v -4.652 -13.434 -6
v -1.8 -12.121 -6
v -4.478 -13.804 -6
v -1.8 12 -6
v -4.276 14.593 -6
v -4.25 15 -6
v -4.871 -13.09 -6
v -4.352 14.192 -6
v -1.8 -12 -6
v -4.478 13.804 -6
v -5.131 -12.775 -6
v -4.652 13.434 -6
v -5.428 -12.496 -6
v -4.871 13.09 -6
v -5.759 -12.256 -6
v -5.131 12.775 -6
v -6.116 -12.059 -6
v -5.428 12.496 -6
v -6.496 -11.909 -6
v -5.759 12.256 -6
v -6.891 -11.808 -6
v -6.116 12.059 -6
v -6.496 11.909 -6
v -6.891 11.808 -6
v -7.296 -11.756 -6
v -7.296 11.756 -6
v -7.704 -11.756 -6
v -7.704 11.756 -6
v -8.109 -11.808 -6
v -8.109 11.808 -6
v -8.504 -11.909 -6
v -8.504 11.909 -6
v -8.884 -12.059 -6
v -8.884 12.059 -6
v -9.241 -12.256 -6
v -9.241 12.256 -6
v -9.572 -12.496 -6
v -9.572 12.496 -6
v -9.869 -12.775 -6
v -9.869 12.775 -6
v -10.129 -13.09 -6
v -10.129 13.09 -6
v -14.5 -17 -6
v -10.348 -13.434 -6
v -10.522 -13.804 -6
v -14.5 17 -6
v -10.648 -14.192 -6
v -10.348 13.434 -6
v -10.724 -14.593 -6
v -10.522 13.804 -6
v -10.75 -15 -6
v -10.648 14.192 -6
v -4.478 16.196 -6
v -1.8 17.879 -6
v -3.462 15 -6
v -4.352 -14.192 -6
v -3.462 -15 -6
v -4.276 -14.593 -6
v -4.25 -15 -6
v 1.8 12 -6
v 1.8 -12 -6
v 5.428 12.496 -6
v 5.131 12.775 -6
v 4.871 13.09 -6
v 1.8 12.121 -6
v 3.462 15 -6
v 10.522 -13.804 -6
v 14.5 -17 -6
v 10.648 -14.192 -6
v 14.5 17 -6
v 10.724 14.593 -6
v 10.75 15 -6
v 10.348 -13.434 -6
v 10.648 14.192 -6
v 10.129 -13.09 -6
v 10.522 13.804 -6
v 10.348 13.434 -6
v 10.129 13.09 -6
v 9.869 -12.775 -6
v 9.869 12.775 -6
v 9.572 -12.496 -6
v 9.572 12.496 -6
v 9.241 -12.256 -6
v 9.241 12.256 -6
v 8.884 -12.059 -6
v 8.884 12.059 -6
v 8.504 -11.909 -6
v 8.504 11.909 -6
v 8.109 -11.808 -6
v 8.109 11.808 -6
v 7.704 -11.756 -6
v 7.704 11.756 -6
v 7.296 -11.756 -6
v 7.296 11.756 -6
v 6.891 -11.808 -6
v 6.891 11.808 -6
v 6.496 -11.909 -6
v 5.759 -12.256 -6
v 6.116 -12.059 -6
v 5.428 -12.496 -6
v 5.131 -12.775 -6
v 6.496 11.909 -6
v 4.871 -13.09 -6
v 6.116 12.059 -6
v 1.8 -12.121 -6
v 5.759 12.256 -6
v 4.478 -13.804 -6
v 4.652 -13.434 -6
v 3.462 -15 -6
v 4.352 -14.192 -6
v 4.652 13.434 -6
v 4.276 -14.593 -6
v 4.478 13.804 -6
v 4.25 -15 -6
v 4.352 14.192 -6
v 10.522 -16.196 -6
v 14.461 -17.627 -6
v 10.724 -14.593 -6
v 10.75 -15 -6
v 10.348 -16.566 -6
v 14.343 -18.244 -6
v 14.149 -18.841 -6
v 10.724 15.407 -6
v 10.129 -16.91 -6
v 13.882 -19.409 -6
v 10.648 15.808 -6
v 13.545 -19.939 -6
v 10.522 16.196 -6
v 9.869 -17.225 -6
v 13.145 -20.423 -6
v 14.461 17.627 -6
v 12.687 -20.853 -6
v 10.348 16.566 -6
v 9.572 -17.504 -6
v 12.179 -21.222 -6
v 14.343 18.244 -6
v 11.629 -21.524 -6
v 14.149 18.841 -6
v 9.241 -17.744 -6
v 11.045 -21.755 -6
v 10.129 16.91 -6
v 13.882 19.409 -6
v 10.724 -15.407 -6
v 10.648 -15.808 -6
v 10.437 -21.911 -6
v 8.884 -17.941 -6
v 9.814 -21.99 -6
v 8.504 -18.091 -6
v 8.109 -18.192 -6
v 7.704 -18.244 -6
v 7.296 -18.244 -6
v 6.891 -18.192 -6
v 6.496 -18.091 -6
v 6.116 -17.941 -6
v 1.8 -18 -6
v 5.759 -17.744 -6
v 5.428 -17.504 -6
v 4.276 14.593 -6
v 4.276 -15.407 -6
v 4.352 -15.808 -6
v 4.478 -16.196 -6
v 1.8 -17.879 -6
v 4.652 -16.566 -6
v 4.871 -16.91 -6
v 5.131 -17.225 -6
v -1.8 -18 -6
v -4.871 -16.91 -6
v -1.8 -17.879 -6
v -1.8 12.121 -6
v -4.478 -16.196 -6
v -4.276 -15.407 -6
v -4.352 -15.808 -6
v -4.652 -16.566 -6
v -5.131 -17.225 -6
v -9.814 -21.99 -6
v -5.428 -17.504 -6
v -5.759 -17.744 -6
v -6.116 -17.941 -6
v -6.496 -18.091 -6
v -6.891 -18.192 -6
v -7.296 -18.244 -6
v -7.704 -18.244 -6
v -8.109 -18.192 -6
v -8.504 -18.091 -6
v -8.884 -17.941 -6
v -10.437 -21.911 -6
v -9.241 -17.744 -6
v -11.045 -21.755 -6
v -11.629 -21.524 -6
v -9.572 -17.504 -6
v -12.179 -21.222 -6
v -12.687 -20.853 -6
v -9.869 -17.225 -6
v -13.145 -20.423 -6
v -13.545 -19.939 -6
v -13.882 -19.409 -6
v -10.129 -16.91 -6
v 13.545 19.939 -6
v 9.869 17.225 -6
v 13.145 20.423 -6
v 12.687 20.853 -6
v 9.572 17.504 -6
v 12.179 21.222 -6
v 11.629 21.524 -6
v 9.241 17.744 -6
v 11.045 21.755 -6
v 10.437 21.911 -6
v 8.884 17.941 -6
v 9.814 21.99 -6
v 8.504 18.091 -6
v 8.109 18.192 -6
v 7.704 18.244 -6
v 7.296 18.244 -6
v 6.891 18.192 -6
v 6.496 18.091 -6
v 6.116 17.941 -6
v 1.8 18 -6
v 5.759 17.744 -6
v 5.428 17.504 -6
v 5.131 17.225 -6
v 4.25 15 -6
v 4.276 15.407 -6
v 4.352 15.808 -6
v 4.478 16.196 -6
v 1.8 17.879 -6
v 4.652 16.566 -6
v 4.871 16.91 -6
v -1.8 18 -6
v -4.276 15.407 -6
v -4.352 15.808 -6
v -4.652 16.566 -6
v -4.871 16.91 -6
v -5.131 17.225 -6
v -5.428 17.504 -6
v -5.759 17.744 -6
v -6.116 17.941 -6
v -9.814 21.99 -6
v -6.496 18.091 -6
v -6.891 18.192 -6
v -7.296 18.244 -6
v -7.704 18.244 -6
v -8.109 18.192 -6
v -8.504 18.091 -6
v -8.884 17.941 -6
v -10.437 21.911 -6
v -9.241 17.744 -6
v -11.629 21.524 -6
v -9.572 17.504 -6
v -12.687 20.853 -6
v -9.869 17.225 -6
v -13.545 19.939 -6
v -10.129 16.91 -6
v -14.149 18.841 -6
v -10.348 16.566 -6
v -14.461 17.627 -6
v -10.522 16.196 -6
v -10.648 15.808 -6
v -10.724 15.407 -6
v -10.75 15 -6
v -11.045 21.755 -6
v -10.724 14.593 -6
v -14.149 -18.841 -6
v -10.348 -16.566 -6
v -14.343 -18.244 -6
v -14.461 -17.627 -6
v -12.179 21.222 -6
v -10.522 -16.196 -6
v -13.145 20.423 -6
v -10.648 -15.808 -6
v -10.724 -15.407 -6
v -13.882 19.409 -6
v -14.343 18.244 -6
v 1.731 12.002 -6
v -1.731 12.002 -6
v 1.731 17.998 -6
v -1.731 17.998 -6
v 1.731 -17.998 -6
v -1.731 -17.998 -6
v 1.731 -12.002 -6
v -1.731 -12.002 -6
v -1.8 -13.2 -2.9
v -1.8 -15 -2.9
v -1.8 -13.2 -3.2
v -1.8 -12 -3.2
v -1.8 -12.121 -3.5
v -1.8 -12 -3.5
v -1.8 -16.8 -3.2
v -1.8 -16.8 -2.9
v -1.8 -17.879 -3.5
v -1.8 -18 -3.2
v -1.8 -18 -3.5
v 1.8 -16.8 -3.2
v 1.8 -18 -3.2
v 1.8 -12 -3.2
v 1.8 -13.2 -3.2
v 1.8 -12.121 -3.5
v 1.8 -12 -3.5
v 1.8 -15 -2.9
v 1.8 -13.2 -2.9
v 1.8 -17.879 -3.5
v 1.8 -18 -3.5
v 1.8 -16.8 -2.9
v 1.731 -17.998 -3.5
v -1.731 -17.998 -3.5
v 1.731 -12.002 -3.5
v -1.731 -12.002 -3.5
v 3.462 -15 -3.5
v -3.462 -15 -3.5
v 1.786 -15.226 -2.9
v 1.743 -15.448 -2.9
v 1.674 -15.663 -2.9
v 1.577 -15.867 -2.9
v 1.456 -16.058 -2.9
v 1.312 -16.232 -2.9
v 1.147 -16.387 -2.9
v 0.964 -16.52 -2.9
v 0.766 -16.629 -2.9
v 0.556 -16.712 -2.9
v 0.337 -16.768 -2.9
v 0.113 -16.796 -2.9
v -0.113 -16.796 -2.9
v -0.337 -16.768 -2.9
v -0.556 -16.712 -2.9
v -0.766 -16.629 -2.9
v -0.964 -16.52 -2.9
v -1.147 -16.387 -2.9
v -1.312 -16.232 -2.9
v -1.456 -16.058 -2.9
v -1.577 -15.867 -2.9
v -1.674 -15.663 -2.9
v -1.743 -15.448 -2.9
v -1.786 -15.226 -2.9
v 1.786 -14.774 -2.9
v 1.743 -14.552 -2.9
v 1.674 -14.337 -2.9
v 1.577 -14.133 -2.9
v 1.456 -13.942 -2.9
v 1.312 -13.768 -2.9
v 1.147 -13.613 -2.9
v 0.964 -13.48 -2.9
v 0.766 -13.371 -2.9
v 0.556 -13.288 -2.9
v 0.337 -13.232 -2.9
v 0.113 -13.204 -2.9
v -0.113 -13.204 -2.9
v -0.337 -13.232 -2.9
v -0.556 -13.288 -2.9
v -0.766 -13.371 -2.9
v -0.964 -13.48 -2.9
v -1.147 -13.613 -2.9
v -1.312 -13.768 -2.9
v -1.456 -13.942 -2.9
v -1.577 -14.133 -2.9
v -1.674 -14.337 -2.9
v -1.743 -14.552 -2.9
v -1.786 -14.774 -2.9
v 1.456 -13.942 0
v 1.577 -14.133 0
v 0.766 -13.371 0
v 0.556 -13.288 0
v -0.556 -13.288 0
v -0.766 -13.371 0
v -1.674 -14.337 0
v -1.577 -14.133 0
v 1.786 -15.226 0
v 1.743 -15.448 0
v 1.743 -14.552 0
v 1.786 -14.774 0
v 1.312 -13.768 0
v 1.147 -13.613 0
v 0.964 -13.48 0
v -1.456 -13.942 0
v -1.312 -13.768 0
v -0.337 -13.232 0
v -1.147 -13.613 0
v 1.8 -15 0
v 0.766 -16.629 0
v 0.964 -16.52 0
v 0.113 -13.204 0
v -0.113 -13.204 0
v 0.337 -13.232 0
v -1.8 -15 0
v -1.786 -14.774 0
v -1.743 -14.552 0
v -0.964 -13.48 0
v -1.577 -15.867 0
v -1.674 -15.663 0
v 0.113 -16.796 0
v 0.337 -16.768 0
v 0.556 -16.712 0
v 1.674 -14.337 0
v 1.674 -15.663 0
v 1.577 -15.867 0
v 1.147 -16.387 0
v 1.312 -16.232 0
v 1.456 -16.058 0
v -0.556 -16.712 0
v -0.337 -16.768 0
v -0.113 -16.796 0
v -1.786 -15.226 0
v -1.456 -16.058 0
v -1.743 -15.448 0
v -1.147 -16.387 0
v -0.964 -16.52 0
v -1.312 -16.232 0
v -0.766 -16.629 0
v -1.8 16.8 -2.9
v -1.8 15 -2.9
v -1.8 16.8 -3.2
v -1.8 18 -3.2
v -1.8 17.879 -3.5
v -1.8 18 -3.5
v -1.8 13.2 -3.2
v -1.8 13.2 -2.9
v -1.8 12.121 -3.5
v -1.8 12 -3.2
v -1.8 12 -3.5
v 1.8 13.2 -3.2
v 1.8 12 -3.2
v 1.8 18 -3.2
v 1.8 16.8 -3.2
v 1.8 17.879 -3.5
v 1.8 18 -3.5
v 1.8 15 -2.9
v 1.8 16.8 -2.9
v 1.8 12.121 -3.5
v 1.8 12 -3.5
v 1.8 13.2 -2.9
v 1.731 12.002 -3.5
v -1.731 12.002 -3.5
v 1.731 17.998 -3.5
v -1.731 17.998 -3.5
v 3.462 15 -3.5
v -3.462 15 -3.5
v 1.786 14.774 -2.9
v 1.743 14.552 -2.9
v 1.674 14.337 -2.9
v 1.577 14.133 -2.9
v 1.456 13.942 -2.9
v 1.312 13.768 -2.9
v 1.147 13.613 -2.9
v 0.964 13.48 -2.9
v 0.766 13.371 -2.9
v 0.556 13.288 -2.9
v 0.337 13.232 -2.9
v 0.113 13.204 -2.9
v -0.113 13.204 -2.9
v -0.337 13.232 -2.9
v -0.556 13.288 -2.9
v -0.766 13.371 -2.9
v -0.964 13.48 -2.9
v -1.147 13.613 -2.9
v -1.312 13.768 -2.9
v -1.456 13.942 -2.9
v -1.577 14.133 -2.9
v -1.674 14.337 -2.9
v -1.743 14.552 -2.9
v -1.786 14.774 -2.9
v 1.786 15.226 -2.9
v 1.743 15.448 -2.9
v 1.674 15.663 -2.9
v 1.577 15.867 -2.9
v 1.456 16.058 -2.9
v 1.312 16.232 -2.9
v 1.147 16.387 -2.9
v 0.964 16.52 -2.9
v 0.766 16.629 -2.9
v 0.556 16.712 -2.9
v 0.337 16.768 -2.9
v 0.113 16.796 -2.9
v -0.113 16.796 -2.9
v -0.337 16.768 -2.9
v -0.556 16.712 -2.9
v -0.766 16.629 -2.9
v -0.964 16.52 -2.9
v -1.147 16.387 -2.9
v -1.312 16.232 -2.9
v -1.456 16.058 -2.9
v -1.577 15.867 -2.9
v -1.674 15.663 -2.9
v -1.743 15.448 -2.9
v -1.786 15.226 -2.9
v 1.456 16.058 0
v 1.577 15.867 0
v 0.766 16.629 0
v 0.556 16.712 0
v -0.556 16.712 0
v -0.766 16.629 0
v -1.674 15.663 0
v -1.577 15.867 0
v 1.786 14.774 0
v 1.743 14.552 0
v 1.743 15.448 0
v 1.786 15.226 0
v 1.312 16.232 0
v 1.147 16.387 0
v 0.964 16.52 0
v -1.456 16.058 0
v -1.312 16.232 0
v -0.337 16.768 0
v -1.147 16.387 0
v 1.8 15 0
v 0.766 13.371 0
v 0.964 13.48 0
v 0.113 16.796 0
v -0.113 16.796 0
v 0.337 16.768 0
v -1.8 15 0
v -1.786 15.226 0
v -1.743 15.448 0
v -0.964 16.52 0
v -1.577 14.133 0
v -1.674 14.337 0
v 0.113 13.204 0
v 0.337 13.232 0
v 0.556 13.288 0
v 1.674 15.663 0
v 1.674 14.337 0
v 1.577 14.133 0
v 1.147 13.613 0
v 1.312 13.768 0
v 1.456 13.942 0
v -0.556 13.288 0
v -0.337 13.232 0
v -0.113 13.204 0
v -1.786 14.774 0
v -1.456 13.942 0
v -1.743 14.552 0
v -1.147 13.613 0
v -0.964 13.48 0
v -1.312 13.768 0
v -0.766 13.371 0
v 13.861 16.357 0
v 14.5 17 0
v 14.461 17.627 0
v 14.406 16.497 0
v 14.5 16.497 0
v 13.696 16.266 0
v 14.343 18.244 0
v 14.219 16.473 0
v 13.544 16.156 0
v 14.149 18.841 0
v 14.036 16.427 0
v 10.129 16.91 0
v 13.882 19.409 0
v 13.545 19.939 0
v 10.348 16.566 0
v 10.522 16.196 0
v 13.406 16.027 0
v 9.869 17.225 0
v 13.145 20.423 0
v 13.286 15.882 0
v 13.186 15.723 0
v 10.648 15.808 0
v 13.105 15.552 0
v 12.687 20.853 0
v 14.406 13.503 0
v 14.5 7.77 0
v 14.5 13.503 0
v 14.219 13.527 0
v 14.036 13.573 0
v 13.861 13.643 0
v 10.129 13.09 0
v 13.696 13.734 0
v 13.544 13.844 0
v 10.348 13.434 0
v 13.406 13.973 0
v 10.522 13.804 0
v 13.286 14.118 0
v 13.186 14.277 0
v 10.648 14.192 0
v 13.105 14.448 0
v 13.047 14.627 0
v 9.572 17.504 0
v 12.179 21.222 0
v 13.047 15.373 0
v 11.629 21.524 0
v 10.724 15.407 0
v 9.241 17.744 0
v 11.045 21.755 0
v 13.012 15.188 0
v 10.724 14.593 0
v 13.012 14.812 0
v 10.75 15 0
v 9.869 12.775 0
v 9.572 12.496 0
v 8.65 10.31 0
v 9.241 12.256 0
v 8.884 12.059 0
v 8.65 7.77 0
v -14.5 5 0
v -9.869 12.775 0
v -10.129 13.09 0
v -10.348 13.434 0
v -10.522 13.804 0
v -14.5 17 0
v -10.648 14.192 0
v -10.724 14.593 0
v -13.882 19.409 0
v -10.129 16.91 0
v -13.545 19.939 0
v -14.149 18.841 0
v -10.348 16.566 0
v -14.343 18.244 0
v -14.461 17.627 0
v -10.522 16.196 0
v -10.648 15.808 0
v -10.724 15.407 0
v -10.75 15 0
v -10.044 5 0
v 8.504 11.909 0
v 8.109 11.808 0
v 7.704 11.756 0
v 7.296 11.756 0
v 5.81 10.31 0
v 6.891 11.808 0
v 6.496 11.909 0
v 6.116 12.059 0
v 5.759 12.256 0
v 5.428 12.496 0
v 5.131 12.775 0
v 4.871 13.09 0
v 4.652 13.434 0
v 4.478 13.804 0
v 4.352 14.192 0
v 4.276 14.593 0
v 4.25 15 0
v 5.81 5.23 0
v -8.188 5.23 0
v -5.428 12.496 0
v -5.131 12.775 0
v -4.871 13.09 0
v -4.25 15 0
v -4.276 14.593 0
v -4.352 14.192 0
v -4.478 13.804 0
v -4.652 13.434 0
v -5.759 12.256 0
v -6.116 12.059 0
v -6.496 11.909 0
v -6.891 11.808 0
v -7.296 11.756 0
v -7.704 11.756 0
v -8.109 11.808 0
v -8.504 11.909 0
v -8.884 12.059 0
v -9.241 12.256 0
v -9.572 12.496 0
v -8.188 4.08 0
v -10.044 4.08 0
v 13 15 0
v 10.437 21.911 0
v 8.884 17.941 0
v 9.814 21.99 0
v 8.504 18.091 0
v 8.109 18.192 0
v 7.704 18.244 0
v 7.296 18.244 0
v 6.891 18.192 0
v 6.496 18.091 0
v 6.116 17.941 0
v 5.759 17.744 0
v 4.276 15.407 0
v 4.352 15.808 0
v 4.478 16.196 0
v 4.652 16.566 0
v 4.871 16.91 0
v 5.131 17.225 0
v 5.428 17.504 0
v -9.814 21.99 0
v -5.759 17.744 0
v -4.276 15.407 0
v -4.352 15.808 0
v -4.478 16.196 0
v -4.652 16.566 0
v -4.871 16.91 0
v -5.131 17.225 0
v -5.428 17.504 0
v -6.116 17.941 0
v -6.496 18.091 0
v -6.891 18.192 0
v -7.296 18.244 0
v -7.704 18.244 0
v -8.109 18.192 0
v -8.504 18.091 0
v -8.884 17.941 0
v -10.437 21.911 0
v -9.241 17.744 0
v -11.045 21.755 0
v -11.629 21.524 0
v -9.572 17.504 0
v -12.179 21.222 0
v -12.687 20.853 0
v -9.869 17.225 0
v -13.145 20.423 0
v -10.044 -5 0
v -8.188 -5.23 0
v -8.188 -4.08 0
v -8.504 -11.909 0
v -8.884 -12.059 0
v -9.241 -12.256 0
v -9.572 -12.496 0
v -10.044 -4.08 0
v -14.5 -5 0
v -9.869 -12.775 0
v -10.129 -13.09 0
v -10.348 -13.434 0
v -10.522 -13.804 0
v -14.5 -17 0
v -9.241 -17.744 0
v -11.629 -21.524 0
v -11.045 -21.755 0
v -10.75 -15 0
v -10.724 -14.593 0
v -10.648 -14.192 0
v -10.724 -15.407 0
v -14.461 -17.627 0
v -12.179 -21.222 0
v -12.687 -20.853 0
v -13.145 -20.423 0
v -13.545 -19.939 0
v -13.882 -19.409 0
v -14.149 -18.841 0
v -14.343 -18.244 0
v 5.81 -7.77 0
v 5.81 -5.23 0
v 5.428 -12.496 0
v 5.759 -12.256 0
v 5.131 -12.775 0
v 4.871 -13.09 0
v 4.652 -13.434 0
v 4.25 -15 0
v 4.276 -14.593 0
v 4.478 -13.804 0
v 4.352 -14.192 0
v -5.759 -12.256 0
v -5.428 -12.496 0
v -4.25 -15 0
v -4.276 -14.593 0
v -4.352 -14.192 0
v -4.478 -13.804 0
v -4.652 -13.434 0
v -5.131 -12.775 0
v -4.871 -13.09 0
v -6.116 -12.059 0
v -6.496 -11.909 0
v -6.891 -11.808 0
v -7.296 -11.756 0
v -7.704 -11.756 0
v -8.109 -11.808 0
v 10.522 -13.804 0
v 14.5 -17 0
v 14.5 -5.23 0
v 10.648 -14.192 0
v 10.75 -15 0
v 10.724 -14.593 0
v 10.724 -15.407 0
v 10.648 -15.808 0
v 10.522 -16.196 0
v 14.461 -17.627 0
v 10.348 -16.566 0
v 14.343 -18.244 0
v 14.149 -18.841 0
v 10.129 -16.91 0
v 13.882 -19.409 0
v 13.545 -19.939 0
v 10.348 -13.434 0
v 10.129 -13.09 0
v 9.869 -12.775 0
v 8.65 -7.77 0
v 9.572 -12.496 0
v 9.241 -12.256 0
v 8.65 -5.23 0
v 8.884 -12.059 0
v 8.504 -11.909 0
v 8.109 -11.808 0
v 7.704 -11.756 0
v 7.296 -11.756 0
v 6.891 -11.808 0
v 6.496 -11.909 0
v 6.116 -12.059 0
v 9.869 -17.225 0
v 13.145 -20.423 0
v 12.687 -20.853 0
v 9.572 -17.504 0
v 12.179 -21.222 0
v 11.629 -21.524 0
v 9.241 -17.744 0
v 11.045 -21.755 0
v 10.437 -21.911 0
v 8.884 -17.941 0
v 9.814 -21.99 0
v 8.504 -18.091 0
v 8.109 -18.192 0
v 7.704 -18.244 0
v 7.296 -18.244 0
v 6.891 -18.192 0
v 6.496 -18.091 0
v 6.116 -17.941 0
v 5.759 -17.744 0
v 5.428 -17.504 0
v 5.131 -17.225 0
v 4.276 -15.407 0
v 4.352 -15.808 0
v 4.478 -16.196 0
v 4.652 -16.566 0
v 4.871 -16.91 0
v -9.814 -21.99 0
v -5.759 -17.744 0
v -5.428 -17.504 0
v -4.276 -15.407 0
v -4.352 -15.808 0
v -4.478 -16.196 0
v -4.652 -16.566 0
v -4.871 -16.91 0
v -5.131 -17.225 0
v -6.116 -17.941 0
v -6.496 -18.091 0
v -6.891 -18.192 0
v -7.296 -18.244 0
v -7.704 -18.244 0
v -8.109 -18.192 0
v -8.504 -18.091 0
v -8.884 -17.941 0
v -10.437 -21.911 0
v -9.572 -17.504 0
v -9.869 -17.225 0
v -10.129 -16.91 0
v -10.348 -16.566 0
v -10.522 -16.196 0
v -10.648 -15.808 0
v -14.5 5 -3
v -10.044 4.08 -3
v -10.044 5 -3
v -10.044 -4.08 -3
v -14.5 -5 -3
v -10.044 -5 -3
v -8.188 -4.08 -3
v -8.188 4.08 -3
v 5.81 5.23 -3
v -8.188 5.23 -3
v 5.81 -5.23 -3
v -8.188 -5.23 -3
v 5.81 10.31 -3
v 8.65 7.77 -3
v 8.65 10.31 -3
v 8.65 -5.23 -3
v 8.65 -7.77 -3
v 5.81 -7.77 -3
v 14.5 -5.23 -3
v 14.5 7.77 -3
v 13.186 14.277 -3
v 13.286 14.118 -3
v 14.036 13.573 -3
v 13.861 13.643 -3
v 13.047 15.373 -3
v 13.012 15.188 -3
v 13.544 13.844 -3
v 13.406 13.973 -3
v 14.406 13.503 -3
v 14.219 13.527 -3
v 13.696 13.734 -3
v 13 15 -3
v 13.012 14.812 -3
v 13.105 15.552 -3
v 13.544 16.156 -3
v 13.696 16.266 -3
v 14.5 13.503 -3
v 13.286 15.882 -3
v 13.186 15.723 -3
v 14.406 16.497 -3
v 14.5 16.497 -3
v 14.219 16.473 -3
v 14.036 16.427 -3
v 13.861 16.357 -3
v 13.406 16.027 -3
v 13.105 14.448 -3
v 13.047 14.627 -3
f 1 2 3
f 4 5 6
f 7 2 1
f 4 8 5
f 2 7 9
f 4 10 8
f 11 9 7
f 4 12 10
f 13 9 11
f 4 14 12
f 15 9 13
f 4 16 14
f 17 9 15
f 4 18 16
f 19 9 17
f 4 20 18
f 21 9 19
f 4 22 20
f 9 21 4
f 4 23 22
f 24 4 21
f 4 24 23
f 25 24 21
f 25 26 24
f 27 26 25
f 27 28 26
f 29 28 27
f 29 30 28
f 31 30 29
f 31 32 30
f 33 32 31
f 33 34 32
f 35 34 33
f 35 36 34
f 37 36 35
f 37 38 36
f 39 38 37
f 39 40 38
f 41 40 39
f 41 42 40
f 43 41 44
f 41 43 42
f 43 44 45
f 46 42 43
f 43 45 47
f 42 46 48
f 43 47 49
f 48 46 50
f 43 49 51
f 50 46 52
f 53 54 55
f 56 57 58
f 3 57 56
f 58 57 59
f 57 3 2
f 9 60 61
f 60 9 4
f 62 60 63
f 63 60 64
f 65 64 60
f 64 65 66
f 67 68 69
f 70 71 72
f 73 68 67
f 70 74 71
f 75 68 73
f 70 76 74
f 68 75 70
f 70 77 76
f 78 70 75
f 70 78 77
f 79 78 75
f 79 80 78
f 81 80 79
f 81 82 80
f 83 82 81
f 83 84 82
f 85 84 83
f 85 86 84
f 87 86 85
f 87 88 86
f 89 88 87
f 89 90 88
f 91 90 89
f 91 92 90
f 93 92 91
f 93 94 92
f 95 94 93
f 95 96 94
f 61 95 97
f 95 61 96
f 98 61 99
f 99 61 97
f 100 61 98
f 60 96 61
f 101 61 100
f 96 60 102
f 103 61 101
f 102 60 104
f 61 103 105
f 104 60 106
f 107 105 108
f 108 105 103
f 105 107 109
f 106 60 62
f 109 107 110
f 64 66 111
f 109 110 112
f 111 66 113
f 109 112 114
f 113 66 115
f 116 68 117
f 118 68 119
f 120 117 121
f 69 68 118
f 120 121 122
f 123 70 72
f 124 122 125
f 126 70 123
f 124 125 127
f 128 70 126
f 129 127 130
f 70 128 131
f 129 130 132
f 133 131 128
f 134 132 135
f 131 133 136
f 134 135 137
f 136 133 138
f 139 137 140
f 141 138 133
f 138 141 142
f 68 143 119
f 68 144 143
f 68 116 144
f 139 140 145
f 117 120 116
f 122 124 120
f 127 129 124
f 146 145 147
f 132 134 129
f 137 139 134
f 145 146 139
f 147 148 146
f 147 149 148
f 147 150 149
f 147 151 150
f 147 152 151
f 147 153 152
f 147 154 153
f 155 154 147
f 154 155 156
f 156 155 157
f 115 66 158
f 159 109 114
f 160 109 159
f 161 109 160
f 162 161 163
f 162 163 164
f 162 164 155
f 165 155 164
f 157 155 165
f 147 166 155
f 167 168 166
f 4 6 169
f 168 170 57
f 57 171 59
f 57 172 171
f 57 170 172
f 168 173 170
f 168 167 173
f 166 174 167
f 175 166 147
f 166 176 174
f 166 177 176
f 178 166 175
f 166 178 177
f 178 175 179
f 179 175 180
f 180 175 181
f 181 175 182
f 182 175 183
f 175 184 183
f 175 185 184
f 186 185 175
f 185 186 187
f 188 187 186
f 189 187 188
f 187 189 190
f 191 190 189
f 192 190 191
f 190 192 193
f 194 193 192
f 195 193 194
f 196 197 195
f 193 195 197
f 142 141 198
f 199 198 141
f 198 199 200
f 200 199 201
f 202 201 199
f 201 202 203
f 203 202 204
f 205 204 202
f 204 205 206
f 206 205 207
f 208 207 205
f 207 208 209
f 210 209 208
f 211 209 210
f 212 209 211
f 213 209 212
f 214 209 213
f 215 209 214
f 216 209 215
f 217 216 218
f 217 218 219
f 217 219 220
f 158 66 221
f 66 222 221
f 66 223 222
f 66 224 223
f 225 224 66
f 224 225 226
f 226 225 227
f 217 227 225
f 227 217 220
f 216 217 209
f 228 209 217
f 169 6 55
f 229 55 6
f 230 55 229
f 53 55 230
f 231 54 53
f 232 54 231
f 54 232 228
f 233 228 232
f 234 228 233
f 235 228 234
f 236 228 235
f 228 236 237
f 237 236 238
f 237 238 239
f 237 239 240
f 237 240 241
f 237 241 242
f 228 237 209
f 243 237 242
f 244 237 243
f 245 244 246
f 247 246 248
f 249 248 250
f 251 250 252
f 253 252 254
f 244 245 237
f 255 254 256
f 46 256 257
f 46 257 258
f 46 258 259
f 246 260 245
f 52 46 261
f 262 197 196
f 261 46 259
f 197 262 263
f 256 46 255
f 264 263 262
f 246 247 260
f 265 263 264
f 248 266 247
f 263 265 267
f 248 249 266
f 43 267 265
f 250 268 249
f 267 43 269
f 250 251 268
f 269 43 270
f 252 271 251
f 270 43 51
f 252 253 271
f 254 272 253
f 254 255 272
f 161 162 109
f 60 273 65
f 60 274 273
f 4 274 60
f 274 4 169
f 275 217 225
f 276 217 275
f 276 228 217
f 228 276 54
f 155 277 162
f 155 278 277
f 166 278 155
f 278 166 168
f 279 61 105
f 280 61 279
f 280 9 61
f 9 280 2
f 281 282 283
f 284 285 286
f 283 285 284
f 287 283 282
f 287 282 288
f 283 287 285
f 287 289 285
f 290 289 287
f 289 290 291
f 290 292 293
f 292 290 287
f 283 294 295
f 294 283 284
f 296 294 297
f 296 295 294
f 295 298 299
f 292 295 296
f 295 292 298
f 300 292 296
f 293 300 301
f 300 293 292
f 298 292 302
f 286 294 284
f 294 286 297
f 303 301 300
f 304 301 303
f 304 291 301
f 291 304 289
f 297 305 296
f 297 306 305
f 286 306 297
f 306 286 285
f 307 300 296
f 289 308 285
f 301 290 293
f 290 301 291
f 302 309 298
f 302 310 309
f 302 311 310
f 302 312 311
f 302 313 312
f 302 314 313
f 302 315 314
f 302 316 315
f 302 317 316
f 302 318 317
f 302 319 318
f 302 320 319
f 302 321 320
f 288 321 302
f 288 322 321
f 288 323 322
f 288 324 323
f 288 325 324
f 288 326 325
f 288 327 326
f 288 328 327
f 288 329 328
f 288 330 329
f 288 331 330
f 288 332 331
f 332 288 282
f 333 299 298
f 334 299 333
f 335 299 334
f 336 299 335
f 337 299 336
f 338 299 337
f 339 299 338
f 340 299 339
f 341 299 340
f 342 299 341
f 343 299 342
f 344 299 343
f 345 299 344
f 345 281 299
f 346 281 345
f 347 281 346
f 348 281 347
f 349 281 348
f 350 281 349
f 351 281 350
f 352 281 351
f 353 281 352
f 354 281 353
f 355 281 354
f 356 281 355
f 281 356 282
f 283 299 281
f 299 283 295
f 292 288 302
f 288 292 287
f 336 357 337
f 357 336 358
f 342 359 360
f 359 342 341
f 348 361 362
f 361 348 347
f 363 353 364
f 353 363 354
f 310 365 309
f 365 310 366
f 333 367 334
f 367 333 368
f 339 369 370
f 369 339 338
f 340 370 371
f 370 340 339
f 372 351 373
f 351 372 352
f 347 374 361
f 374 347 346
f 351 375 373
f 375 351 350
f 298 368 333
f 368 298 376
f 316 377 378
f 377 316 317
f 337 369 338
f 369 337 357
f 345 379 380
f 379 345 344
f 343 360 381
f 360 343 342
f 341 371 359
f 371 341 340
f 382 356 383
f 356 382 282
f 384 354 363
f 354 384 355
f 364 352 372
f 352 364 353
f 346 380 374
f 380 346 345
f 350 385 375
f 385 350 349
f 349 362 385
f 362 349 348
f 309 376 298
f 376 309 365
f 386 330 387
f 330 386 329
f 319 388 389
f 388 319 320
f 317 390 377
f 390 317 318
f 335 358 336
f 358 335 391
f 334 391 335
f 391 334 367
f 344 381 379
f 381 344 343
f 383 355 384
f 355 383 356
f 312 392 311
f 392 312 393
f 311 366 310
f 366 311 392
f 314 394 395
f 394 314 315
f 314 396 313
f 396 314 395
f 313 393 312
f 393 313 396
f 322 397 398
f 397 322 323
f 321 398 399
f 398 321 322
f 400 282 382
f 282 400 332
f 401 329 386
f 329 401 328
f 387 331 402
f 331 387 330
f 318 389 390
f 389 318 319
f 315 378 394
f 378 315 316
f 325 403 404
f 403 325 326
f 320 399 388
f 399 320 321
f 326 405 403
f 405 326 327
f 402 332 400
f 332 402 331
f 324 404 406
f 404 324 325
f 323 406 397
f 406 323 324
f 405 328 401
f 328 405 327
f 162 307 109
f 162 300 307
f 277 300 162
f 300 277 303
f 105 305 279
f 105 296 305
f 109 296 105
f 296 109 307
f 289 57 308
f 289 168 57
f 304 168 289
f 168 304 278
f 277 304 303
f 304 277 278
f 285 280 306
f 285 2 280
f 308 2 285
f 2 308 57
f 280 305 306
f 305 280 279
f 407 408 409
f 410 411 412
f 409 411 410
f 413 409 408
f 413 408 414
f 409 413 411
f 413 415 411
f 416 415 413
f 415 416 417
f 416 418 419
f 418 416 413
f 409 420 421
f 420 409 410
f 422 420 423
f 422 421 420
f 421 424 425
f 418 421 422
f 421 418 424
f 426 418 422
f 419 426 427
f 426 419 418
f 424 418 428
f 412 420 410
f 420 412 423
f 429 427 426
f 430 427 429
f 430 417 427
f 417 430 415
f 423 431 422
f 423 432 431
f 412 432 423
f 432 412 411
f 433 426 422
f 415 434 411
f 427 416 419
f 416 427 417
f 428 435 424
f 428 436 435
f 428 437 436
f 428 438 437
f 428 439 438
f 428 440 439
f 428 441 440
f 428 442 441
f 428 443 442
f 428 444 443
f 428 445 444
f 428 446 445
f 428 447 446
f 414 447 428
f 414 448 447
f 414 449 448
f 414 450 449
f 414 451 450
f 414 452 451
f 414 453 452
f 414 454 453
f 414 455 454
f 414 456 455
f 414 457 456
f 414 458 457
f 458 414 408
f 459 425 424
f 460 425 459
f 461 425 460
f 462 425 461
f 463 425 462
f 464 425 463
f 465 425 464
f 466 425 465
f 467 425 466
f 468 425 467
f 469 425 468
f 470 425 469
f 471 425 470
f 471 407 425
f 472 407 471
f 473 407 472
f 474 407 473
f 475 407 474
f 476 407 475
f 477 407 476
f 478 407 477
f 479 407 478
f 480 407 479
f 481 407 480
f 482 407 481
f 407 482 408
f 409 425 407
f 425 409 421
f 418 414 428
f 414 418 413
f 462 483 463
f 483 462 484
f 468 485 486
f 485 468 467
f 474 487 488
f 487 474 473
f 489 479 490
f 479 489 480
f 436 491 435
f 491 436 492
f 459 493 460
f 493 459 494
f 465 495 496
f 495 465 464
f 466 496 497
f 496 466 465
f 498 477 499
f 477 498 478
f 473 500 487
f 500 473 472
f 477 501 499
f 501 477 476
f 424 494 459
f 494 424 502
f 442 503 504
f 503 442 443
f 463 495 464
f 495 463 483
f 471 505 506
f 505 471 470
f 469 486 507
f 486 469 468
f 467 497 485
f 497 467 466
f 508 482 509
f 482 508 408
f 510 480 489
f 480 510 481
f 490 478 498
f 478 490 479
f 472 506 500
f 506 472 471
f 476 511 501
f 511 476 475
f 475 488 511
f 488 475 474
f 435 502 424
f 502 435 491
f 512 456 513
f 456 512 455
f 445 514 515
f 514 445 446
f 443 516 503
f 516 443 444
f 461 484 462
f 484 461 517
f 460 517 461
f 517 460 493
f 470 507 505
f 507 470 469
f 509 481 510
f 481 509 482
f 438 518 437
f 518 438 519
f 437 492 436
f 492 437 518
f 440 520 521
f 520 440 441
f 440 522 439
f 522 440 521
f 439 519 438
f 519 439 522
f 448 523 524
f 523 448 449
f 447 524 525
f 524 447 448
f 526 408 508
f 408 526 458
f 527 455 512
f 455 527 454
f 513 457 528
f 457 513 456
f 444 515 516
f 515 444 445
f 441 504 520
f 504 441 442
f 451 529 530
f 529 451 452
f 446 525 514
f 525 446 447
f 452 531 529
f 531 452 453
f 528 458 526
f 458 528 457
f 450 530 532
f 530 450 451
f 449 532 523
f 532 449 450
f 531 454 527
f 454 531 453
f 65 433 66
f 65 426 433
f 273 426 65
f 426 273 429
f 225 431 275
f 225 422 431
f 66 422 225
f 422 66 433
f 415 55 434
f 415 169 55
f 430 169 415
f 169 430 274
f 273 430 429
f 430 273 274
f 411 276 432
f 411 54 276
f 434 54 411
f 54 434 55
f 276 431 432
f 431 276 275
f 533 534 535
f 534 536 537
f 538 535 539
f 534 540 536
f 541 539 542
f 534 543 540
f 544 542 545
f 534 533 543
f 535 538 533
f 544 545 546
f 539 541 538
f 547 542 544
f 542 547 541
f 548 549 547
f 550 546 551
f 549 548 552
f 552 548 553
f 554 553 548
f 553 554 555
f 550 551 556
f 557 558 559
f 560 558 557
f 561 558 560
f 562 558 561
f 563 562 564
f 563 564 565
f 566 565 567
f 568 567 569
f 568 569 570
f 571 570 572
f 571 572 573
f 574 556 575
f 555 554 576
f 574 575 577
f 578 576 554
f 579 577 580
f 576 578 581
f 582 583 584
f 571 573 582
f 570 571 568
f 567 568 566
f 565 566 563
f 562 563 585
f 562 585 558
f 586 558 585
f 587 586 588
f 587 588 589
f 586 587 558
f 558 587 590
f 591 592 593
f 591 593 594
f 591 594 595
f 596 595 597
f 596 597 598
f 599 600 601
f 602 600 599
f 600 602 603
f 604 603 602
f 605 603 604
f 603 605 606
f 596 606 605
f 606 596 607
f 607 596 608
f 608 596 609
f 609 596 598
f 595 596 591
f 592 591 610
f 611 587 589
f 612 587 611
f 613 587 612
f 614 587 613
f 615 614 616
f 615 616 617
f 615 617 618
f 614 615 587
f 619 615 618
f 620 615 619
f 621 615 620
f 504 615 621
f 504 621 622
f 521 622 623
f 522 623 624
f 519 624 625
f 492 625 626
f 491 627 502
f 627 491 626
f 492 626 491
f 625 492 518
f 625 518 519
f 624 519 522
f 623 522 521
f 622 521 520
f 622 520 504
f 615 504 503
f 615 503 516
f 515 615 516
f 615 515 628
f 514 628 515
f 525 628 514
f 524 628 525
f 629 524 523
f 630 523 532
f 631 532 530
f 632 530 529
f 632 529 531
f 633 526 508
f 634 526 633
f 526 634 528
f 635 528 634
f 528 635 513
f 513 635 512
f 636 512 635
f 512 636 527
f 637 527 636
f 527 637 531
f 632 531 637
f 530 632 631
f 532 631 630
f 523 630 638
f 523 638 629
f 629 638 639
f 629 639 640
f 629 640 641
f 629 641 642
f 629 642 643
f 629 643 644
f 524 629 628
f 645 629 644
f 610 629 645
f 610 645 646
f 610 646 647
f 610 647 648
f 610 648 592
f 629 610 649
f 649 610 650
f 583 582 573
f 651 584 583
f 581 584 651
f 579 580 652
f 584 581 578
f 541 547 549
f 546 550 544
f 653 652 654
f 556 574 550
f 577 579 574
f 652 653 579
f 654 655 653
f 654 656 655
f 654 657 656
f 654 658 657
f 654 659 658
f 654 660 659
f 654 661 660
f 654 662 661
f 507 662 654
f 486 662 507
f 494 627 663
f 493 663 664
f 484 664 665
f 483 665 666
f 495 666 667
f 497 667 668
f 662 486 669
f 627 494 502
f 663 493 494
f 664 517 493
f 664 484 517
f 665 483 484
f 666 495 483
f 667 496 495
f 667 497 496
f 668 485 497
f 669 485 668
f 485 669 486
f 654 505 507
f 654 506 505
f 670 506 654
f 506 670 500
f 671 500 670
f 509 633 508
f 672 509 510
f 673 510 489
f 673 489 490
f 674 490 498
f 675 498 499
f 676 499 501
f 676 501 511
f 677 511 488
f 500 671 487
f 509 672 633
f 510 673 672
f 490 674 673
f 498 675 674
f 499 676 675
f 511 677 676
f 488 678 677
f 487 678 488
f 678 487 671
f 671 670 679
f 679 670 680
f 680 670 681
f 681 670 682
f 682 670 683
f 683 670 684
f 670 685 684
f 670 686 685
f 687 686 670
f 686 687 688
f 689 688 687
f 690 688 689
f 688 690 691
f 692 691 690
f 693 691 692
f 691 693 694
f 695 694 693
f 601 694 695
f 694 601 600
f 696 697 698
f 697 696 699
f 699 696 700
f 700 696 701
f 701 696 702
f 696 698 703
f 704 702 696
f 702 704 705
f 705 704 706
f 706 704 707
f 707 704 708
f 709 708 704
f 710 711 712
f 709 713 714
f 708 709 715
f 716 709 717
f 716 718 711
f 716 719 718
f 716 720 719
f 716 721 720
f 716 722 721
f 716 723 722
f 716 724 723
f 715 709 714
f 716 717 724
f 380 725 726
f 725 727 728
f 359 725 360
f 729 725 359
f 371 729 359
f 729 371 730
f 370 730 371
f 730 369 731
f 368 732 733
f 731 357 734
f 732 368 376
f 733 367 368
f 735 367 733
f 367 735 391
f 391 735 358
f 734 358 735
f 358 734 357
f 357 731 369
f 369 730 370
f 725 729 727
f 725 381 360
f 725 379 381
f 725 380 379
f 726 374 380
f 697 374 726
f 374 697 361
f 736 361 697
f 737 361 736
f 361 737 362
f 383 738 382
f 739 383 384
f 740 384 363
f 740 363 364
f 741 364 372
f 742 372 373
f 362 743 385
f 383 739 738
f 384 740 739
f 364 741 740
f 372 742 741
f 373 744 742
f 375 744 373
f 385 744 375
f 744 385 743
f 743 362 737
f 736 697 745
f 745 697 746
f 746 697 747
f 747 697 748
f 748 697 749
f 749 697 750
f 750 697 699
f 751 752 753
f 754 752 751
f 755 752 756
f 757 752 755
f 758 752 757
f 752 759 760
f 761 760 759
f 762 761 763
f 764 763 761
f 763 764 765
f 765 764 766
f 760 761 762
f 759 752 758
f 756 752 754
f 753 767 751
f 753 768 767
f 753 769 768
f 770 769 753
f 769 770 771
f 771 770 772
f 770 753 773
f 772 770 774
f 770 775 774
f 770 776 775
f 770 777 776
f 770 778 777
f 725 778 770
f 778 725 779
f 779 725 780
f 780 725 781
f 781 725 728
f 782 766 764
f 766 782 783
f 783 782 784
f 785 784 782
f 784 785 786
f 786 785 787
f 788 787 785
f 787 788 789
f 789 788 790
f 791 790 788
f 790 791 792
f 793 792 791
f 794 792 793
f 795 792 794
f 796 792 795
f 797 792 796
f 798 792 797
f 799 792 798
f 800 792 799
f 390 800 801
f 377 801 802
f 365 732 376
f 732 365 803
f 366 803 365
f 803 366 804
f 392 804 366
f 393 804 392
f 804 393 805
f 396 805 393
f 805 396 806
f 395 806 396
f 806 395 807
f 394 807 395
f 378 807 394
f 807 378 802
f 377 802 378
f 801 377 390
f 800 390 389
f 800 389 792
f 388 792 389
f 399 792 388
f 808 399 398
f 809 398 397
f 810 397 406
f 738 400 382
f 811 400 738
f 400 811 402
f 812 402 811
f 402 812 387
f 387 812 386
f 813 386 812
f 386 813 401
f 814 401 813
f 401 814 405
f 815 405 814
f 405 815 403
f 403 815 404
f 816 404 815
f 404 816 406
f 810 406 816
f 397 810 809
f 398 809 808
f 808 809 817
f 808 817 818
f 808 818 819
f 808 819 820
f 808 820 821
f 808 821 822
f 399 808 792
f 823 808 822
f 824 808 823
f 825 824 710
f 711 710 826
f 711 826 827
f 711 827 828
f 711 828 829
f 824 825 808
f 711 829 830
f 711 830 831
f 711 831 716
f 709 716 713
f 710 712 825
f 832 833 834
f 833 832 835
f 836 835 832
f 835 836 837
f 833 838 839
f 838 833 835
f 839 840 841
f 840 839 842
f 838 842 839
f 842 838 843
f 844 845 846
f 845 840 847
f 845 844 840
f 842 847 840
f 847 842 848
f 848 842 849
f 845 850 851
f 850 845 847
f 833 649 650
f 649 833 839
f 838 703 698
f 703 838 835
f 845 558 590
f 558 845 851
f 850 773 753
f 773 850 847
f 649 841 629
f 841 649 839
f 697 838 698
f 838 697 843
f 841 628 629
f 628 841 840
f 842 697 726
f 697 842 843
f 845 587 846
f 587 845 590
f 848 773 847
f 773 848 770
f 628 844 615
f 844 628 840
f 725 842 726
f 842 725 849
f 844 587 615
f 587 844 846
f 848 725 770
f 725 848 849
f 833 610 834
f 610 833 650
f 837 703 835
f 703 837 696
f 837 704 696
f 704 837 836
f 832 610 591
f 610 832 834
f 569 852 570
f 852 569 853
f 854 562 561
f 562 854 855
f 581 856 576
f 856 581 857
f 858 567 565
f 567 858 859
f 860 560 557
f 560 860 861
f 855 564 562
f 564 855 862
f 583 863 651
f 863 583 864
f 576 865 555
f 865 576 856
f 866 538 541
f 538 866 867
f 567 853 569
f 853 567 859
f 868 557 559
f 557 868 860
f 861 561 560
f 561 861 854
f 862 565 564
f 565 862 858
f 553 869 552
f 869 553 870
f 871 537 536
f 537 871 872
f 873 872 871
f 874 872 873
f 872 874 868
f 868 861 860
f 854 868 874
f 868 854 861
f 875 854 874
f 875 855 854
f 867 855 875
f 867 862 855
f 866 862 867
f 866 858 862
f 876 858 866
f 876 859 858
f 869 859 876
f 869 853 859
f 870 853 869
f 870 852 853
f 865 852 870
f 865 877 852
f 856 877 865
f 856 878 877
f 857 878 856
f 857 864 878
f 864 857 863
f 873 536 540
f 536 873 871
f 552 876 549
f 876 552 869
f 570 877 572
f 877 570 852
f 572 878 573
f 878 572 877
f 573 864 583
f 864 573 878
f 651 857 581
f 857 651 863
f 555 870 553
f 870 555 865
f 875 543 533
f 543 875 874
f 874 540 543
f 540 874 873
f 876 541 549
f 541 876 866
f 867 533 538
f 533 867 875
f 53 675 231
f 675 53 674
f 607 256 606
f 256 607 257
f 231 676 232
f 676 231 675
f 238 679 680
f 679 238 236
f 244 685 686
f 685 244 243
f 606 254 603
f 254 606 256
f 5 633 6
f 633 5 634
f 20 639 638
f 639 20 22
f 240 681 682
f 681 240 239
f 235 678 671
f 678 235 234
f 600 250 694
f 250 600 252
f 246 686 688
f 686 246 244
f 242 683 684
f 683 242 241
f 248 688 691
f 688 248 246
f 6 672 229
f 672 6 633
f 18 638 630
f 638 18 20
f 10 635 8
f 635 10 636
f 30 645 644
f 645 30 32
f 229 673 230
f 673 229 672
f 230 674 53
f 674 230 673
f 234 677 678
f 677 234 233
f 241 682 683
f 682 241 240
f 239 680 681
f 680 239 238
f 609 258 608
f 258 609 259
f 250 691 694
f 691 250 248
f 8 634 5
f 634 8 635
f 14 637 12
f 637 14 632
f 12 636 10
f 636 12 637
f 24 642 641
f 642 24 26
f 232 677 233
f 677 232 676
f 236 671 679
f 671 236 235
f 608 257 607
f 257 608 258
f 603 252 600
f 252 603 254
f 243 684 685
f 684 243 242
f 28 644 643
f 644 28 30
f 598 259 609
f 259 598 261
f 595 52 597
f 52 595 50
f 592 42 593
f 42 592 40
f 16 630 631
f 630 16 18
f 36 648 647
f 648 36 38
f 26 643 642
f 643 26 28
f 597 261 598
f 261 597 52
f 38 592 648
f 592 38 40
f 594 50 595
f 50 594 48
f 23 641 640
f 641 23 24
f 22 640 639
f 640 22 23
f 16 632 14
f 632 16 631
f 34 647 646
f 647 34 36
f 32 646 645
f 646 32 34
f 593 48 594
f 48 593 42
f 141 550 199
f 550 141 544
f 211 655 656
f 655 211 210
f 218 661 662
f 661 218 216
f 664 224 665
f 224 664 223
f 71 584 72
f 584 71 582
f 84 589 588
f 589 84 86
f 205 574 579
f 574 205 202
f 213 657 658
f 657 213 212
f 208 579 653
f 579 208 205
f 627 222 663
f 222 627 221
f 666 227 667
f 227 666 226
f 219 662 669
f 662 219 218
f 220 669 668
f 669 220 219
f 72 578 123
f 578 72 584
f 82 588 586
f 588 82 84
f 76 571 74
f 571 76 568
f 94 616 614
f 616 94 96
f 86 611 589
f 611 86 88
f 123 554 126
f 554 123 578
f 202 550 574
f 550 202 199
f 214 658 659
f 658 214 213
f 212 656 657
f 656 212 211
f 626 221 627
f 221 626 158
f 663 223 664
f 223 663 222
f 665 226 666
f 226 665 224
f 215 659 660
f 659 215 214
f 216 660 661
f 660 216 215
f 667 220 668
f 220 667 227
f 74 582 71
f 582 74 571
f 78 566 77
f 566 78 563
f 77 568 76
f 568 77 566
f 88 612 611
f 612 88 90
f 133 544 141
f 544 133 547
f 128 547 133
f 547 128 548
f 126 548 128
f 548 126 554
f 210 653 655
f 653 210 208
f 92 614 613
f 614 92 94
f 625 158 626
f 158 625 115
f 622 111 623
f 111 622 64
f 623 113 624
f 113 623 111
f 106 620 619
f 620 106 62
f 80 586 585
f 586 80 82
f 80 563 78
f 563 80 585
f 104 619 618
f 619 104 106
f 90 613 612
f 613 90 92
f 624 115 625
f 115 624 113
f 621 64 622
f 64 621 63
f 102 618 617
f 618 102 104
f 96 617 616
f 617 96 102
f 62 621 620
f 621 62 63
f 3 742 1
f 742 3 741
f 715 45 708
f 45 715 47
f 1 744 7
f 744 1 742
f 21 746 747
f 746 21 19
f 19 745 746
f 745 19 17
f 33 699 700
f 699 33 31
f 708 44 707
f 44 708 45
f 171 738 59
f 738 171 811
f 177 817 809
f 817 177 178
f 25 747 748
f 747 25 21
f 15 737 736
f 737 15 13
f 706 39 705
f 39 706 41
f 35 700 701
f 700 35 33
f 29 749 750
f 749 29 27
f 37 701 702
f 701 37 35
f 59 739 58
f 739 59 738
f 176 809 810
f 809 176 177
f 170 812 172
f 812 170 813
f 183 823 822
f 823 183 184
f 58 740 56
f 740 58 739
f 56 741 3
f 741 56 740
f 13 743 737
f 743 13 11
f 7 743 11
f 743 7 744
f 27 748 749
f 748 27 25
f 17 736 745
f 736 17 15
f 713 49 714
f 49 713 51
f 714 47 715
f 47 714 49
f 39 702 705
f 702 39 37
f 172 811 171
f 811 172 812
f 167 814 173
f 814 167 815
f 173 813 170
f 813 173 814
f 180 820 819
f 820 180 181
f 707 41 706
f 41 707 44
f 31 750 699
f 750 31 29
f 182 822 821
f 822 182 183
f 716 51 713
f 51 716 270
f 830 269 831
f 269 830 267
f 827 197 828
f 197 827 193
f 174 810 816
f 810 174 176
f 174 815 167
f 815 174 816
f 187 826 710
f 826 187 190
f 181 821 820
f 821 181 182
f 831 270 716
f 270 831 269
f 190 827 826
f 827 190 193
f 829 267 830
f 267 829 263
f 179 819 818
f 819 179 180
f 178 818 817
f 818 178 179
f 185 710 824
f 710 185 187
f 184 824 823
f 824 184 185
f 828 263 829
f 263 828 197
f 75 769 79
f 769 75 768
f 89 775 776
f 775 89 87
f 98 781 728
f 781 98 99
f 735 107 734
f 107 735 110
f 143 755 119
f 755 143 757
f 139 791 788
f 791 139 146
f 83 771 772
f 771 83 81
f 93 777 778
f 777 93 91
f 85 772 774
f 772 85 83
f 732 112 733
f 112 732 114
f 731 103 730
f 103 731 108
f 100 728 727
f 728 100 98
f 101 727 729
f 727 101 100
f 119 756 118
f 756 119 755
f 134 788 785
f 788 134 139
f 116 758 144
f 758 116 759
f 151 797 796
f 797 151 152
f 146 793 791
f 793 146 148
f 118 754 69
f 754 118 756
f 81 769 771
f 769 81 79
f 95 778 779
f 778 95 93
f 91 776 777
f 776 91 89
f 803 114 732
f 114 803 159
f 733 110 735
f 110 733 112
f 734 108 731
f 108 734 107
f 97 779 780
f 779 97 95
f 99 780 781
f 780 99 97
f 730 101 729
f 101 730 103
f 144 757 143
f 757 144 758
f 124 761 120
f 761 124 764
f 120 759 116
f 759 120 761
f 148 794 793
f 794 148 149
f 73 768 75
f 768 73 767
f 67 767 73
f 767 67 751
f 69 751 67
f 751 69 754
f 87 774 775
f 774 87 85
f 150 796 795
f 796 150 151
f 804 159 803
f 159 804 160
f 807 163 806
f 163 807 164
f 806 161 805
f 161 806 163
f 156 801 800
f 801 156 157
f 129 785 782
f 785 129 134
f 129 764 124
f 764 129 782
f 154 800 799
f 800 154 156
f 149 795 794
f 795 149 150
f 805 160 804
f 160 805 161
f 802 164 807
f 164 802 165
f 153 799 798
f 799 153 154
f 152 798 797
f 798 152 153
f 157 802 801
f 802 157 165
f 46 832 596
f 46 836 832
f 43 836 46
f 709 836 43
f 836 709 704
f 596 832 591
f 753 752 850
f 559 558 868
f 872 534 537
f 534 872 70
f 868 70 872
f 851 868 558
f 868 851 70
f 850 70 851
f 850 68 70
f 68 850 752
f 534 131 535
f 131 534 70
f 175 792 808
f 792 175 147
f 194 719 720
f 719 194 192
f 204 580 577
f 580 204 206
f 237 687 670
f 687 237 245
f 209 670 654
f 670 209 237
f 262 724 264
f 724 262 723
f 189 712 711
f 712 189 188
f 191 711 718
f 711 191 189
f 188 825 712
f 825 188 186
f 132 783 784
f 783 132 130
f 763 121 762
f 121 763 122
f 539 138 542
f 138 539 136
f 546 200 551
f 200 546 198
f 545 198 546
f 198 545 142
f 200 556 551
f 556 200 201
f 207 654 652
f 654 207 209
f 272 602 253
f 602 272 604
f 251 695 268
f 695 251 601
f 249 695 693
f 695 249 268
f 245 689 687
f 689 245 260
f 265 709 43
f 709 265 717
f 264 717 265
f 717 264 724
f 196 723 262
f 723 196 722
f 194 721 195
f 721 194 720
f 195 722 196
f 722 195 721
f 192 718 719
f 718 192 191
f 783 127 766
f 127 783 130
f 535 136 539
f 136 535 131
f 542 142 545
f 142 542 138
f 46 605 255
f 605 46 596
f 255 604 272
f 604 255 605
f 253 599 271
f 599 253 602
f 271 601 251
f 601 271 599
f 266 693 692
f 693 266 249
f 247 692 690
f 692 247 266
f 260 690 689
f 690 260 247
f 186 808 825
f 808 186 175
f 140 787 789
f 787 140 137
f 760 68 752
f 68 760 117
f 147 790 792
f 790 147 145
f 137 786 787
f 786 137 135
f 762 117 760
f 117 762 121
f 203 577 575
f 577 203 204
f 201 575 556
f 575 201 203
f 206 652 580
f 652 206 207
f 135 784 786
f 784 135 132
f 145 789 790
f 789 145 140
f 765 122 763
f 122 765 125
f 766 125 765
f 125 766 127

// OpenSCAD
$fn = 50;


difference() {
	union() {
		*color(alpha = 1.0000000000, c = "gray") {
			translate(v = [0, 14, -6]) {
				linear_extrude(height = 3) {
					text(font = "Arial:style=Bold", halign = "center", size = 4.5000000000, text = "COMMENT description oobb_plate_shape_positive_type_6_depth_0_0_-6_pos_i2c_extra_6_thickness_2_width_3_height_0_0_-6_pos_plate", valign = "center");
				}
			}
		}
		translate(v = [0, 0, -6]) {
			hull() {
				translate(v = [-9.5000000000, 17.0000000000, 0]) {
					cylinder(h = 6, r = 5);
				}
				translate(v = [9.5000000000, 17.0000000000, 0]) {
					cylinder(h = 6, r = 5);
				}
				translate(v = [-9.5000000000, -17.0000000000, 0]) {
					cylinder(h = 6, r = 5);
				}
				translate(v = [9.5000000000, -17.0000000000, 0]) {
					cylinder(h = 6, r = 5);
				}
			}
		}
		*color(alpha = 1.0000000000, c = "gray") {
			translate(v = [0, 14, -6]) {
				linear_extrude(height = 3) {
					text(font = "Arial:style=Bold", halign = "center", size = 4.5000000000, text = "COMMENT description oobb_holes_shape_p_type_0_0_-6_pos_i2c_extra_6_thickness_2_width_3_height_0_0_-6_pos_plate_'left'_'right'_hole_sides_'left'_'right'_holes_true_both_holes", valign = "center");
				}
			}
		}
		*color(alpha = 1.0000000000, c = "gray") {
			translate(v = [-7.5000000000, 14, -3]) {
				rotate(a = [0, 0, 180]) {
					linear_extrude(height = 3) {
						text(font = "Arial:style=Bold", halign = "center", size = 4.5000000000, text = "COMMENT description oobb_wire_i2c_shape_-7.5_0_-3_pos_i2c_extra_6_thickness_2_width_3_height_0_0_-6_pos_plate_0_0_180_rot", valign = "center");
					}
				}
			}
		}
	}
	union() {
		translate(v = [0, -15, -6]) {
			rotate(a = [0, 0, 0]) {
				difference() {
					union() {
						translate(v = [-1.8000000000, -3.0000000000, -0.3000000000]) {
							cube(size = [3.6000000000, 6.0000000000, 0.3000000000]);
						}
						translate(v = [-1.8000000000, -1.8000000000, -0.6000000000]) {
							cube(size = [3.6000000000, 3.6000000000, 0.3000000000]);
						}
						translate(v = [-1.8000000000, -3.0000000000, 2.5000000000]) {
							cube(size = [3.6000000000, 6.0000000000, 0.3000000000]);
						}
						translate(v = [-1.8000000000, -1.8000000000, 2.8000000000]) {
							cube(size = [3.6000000000, 3.6000000000, 0.3000000000]);
						}
						translate(v = [0, 0, -50.0000000000]) {
							cylinder(h = 100, r = 1.8000000000);
						}
						linear_extrude(height = 2.5000000000) {
							polygon(points = [[3.4620000000, 0.0000000000], [1.7310000000, 2.9981799479], [-1.7310000000, 2.9981799479], [-3.4620000000, 0.0000000000], [-1.7310000000, -2.9981799479], [1.7310000000, -2.9981799479]]);
						}
						translate(v = [-1.8000000000, -3.0000000000, -0.3000000000]) {
							cube(size = [3.6000000000, 6.0000000000, 0.3000000000]);
						}
						translate(v = [-1.8000000000, -1.8000000000, -0.6000000000]) {
							cube(size = [3.6000000000, 3.6000000000, 0.3000000000]);
						}
						translate(v = [-1.8000000000, -3.0000000000, 2.5000000000]) {
							cube(size = [3.6000000000, 6.0000000000, 0.3000000000]);
						}
						translate(v = [-1.8000000000, -1.8000000000, 2.8000000000]) {
							cube(size = [3.6000000000, 3.6000000000, 0.3000000000]);
						}
						translate(v = [0, 0, -50.0000000000]) {
							cylinder(h = 100, r = 1.8000000000);
						}
						translate(v = [-1.8000000000, -3.0000000000, -0.3000000000]) {
							cube(size = [3.6000000000, 6.0000000000, 0.3000000000]);
						}
						translate(v = [-1.8000000000, -1.8000000000, -0.6000000000]) {
							cube(size = [3.6000000000, 3.6000000000, 0.3000000000]);
						}
						translate(v = [-1.8000000000, -3.0000000000, 2.5000000000]) {
							cube(size = [3.6000000000, 6.0000000000, 0.3000000000]);
						}
						translate(v = [-1.8000000000, -1.8000000000, 2.8000000000]) {
							cube(size = [3.6000000000, 3.6000000000, 0.3000000000]);
						}
						translate(v = [0, 0, -50.0000000000]) {
							cylinder(h = 100, r = 1.8000000000);
						}
					}
					union();
				}
			}
		}
		translate(v = [0, 15, -6]) {
			rotate(a = [0, 0, 0]) {
				difference() {
					union() {
						translate(v = [-1.8000000000, -3.0000000000, -0.3000000000]) {
							cube(size = [3.6000000000, 6.0000000000, 0.3000000000]);
						}
						translate(v = [-1.8000000000, -1.8000000000, -0.6000000000]) {
							cube(size = [3.6000000000, 3.6000000000, 0.3000000000]);
						}
						translate(v = [-1.8000000000, -3.0000000000, 2.5000000000]) {
							cube(size = [3.6000000000, 6.0000000000, 0.3000000000]);
						}
						translate(v = [-1.8000000000, -1.8000000000, 2.8000000000]) {
							cube(size = [3.6000000000, 3.6000000000, 0.3000000000]);
						}
						translate(v = [0, 0, -50.0000000000]) {
							cylinder(h = 100, r = 1.8000000000);
						}
						linear_extrude(height = 2.5000000000) {
							polygon(points = [[3.4620000000, 0.0000000000], [1.7310000000, 2.9981799479], [-1.7310000000, 2.9981799479], [-3.4620000000, 0.0000000000], [-1.7310000000, -2.9981799479], [1.7310000000, -2.9981799479]]);
						}
						translate(v = [-1.8000000000, -3.0000000000, -0.3000000000]) {
							cube(size = [3.6000000000, 6.0000000000, 0.3000000000]);
						}
						translate(v = [-1.8000000000, -1.8000000000, -0.6000000000]) {
							cube(size = [3.6000000000, 3.6000000000, 0.3000000000]);
						}
						translate(v = [-1.8000000000, -3.0000000000, 2.5000000000]) {
							cube(size = [3.6000000000, 6.0000000000, 0.3000000000]);
						}
						translate(v = [-1.8000000000, -1.8000000000, 2.8000000000]) {
							cube(size = [3.6000000000, 3.6000000000, 0.3000000000]);
						}
						translate(v = [0, 0, -50.0000000000]) {
							cylinder(h = 100, r = 1.8000000000);
						}
						translate(v = [-1.8000000000, -3.0000000000, -0.3000000000]) {
							cube(size = [3.6000000000, 6.0000000000, 0.3000000000]);
						}
						translate(v = [-1.8000000000, -1.8000000000, -0.6000000000]) {
							cube(size = [3.6000000000, 3.6000000000, 0.3000000000]);
						}
						translate(v = [-1.8000000000, -3.0000000000, 2.5000000000]) {
							cube(size = [3.6000000000, 6.0000000000, 0.3000000000]);
						}
						translate(v = [-1.8000000000, -1.8000000000, 2.8000000000]) {
							cube(size = [3.6000000000, 3.6000000000, 0.3000000000]);
						}
						translate(v = [0, 0, -50.0000000000]) {
							cylinder(h = 100, r = 1.8000000000);
						}
					}
					union();
				}
			}
		}
		translate(v = [15.0000000000, 0, -3]) {
			rotate(a = [0, 0, 180]) {
				difference() {
					union() {
						#translate(v = [23.0670000000, -4.0800000000, 0]) {
							cube(size = [5, 8.1600000000, 3]);
						}
						#translate(v = [0.2040000000, -7.7700000000, 0]) {
							cube(size = [6.3000000000, 13.0000000000, 3]);
						}
						#translate(v = [8.8880000000, -5.2300000000, 0]) {
							cube(size = [14.3000000000, 10.4600000000, 3]);
						}
						#translate(v = [6.3500000000, -10.3100000000, 0]) {
							cube(size = [2.8400000000, 18.0800000000, 3]);
						}
						#translate(v = [25.0440000000, -5.0000000000, 0]) {
							cube(size = [7, 10, 3]);
						}
						#translate(v = [0.5000000000, -15, 0.0000000000]) {
							cylinder(h = 3, r = 1.5000000000);
						}
					}
					union();
				}
			}
		}
		translate(v = [-7.5000000000, 15.0000000000, -50.0000000000]) {
			cylinder(h = 100, r = 3.2500000000);
		}
		translate(v = [7.5000000000, 15.0000000000, -50.0000000000]) {
			cylinder(h = 100, r = 3.2500000000);
		}
		translate(v = [-7.5000000000, -15.0000000000, -50.0000000000]) {
			cylinder(h = 100, r = 3.2500000000);
		}
		translate(v = [7.5000000000, -15.0000000000, -50.0000000000]) {
			cylinder(h = 100, r = 3.2500000000);
		}
		translate(v = [-7.5000000000, 15.0000000000, -50.0000000000]) {
			cylinder(h = 100, r = 1.8000000000);
		}
		translate(v = [0.0000000000, 15.0000000000, -50.0000000000]) {
			cylinder(h = 100, r = 1.8000000000);
		}
		translate(v = [7.5000000000, 15.0000000000, -50.0000000000]) {
			cylinder(h = 100, r = 1.8000000000);
		}
		translate(v = [-7.5000000000, -15.0000000000, -50.0000000000]) {
			cylinder(h = 100, r = 1.8000000000);
		}
		translate(v = [0.0000000000, -15.0000000000, -50.0000000000]) {
			cylinder(h = 100, r = 1.8000000000);
		}
		translate(v = [7.5000000000, -15.0000000000, -50.0000000000]) {
			cylinder(h = 100, r = 1.8000000000);
		}
		translate(v = [-7.5000000000, 15.0000000000, -50.0000000000]) {
			cylinder(h = 100, r = 1.8000000000);
		}
		translate(v = [0.0000000000, 15.0000000000, -50.0000000000]) {
			cylinder(h = 100, r = 1.8000000000);
		}
		translate(v = [7.5000000000, 15.0000000000, -50.0000000000]) {
			cylinder(h = 100, r = 1.8000000000);
		}
		translate(v = [-7.5000000000, -15.0000000000, -50.0000000000]) {
			cylinder(h = 100, r = 1.8000000000);
		}
		translate(v = [0.0000000000, -15.0000000000, -50.0000000000]) {
			cylinder(h = 100, r = 1.8000000000);
		}
		translate(v = [7.5000000000, -15.0000000000, -50.0000000000]) {
			cylinder(h = 100, r = 1.8000000000);
		}
		translate(v = [-7.5000000000, 15.0000000000, -50.0000000000]) {
			cylinder(h = 100, r = 1.8000000000);
		}
		translate(v = [0.0000000000, 15.0000000000, -50.0000000000]) {
			cylinder(h = 100, r = 1.8000000000);
		}
		translate(v = [7.5000000000, 15.0000000000, -50.0000000000]) {
			cylinder(h = 100, r = 1.8000000000);
		}
		translate(v = [-7.5000000000, -15.0000000000, -50.0000000000]) {
			cylinder(h = 100, r = 1.8000000000);
		}
		translate(v = [0.0000000000, -15.0000000000, -50.0000000000]) {
			cylinder(h = 100, r = 1.8000000000);
		}
		translate(v = [7.5000000000, -15.0000000000, -50.0000000000]) {
			cylinder(h = 100, r = 1.8000000000);
		}
		*color(alpha = 1.0000000000, c = "gray") {
			translate(v = [0, -1, -6]) {
				linear_extrude(height = 3) {
					text(font = "Arial:style=Bold", halign = "center", size = 4.5000000000, text = "COMMENT description oobb_nut_shape_negative_type_m3_radius_name_0_-15_-6_pos_6_thickness_2_width_3_height_0_0_-6_pos_plate_bottom_zz_true_overhang_0_0_0_rot_false_nut_true_hole", valign = "center");
				}
			}
		}
		*color(alpha = 1.0000000000, c = "gray") {
			translate(v = [0, 29, -6]) {
				linear_extrude(height = 3) {
					text(font = "Arial:style=Bold", halign = "center", size = 4.5000000000, text = "COMMENT description oobb_nut_shape_negative_type_m3_radius_name_0_15_-6_pos_6_thickness_2_width_3_height_0_0_-6_pos_plate_bottom_zz_true_overhang_0_0_0_rot_false_nut_true_hole", valign = "center");
				}
			}
		}
	}
}
